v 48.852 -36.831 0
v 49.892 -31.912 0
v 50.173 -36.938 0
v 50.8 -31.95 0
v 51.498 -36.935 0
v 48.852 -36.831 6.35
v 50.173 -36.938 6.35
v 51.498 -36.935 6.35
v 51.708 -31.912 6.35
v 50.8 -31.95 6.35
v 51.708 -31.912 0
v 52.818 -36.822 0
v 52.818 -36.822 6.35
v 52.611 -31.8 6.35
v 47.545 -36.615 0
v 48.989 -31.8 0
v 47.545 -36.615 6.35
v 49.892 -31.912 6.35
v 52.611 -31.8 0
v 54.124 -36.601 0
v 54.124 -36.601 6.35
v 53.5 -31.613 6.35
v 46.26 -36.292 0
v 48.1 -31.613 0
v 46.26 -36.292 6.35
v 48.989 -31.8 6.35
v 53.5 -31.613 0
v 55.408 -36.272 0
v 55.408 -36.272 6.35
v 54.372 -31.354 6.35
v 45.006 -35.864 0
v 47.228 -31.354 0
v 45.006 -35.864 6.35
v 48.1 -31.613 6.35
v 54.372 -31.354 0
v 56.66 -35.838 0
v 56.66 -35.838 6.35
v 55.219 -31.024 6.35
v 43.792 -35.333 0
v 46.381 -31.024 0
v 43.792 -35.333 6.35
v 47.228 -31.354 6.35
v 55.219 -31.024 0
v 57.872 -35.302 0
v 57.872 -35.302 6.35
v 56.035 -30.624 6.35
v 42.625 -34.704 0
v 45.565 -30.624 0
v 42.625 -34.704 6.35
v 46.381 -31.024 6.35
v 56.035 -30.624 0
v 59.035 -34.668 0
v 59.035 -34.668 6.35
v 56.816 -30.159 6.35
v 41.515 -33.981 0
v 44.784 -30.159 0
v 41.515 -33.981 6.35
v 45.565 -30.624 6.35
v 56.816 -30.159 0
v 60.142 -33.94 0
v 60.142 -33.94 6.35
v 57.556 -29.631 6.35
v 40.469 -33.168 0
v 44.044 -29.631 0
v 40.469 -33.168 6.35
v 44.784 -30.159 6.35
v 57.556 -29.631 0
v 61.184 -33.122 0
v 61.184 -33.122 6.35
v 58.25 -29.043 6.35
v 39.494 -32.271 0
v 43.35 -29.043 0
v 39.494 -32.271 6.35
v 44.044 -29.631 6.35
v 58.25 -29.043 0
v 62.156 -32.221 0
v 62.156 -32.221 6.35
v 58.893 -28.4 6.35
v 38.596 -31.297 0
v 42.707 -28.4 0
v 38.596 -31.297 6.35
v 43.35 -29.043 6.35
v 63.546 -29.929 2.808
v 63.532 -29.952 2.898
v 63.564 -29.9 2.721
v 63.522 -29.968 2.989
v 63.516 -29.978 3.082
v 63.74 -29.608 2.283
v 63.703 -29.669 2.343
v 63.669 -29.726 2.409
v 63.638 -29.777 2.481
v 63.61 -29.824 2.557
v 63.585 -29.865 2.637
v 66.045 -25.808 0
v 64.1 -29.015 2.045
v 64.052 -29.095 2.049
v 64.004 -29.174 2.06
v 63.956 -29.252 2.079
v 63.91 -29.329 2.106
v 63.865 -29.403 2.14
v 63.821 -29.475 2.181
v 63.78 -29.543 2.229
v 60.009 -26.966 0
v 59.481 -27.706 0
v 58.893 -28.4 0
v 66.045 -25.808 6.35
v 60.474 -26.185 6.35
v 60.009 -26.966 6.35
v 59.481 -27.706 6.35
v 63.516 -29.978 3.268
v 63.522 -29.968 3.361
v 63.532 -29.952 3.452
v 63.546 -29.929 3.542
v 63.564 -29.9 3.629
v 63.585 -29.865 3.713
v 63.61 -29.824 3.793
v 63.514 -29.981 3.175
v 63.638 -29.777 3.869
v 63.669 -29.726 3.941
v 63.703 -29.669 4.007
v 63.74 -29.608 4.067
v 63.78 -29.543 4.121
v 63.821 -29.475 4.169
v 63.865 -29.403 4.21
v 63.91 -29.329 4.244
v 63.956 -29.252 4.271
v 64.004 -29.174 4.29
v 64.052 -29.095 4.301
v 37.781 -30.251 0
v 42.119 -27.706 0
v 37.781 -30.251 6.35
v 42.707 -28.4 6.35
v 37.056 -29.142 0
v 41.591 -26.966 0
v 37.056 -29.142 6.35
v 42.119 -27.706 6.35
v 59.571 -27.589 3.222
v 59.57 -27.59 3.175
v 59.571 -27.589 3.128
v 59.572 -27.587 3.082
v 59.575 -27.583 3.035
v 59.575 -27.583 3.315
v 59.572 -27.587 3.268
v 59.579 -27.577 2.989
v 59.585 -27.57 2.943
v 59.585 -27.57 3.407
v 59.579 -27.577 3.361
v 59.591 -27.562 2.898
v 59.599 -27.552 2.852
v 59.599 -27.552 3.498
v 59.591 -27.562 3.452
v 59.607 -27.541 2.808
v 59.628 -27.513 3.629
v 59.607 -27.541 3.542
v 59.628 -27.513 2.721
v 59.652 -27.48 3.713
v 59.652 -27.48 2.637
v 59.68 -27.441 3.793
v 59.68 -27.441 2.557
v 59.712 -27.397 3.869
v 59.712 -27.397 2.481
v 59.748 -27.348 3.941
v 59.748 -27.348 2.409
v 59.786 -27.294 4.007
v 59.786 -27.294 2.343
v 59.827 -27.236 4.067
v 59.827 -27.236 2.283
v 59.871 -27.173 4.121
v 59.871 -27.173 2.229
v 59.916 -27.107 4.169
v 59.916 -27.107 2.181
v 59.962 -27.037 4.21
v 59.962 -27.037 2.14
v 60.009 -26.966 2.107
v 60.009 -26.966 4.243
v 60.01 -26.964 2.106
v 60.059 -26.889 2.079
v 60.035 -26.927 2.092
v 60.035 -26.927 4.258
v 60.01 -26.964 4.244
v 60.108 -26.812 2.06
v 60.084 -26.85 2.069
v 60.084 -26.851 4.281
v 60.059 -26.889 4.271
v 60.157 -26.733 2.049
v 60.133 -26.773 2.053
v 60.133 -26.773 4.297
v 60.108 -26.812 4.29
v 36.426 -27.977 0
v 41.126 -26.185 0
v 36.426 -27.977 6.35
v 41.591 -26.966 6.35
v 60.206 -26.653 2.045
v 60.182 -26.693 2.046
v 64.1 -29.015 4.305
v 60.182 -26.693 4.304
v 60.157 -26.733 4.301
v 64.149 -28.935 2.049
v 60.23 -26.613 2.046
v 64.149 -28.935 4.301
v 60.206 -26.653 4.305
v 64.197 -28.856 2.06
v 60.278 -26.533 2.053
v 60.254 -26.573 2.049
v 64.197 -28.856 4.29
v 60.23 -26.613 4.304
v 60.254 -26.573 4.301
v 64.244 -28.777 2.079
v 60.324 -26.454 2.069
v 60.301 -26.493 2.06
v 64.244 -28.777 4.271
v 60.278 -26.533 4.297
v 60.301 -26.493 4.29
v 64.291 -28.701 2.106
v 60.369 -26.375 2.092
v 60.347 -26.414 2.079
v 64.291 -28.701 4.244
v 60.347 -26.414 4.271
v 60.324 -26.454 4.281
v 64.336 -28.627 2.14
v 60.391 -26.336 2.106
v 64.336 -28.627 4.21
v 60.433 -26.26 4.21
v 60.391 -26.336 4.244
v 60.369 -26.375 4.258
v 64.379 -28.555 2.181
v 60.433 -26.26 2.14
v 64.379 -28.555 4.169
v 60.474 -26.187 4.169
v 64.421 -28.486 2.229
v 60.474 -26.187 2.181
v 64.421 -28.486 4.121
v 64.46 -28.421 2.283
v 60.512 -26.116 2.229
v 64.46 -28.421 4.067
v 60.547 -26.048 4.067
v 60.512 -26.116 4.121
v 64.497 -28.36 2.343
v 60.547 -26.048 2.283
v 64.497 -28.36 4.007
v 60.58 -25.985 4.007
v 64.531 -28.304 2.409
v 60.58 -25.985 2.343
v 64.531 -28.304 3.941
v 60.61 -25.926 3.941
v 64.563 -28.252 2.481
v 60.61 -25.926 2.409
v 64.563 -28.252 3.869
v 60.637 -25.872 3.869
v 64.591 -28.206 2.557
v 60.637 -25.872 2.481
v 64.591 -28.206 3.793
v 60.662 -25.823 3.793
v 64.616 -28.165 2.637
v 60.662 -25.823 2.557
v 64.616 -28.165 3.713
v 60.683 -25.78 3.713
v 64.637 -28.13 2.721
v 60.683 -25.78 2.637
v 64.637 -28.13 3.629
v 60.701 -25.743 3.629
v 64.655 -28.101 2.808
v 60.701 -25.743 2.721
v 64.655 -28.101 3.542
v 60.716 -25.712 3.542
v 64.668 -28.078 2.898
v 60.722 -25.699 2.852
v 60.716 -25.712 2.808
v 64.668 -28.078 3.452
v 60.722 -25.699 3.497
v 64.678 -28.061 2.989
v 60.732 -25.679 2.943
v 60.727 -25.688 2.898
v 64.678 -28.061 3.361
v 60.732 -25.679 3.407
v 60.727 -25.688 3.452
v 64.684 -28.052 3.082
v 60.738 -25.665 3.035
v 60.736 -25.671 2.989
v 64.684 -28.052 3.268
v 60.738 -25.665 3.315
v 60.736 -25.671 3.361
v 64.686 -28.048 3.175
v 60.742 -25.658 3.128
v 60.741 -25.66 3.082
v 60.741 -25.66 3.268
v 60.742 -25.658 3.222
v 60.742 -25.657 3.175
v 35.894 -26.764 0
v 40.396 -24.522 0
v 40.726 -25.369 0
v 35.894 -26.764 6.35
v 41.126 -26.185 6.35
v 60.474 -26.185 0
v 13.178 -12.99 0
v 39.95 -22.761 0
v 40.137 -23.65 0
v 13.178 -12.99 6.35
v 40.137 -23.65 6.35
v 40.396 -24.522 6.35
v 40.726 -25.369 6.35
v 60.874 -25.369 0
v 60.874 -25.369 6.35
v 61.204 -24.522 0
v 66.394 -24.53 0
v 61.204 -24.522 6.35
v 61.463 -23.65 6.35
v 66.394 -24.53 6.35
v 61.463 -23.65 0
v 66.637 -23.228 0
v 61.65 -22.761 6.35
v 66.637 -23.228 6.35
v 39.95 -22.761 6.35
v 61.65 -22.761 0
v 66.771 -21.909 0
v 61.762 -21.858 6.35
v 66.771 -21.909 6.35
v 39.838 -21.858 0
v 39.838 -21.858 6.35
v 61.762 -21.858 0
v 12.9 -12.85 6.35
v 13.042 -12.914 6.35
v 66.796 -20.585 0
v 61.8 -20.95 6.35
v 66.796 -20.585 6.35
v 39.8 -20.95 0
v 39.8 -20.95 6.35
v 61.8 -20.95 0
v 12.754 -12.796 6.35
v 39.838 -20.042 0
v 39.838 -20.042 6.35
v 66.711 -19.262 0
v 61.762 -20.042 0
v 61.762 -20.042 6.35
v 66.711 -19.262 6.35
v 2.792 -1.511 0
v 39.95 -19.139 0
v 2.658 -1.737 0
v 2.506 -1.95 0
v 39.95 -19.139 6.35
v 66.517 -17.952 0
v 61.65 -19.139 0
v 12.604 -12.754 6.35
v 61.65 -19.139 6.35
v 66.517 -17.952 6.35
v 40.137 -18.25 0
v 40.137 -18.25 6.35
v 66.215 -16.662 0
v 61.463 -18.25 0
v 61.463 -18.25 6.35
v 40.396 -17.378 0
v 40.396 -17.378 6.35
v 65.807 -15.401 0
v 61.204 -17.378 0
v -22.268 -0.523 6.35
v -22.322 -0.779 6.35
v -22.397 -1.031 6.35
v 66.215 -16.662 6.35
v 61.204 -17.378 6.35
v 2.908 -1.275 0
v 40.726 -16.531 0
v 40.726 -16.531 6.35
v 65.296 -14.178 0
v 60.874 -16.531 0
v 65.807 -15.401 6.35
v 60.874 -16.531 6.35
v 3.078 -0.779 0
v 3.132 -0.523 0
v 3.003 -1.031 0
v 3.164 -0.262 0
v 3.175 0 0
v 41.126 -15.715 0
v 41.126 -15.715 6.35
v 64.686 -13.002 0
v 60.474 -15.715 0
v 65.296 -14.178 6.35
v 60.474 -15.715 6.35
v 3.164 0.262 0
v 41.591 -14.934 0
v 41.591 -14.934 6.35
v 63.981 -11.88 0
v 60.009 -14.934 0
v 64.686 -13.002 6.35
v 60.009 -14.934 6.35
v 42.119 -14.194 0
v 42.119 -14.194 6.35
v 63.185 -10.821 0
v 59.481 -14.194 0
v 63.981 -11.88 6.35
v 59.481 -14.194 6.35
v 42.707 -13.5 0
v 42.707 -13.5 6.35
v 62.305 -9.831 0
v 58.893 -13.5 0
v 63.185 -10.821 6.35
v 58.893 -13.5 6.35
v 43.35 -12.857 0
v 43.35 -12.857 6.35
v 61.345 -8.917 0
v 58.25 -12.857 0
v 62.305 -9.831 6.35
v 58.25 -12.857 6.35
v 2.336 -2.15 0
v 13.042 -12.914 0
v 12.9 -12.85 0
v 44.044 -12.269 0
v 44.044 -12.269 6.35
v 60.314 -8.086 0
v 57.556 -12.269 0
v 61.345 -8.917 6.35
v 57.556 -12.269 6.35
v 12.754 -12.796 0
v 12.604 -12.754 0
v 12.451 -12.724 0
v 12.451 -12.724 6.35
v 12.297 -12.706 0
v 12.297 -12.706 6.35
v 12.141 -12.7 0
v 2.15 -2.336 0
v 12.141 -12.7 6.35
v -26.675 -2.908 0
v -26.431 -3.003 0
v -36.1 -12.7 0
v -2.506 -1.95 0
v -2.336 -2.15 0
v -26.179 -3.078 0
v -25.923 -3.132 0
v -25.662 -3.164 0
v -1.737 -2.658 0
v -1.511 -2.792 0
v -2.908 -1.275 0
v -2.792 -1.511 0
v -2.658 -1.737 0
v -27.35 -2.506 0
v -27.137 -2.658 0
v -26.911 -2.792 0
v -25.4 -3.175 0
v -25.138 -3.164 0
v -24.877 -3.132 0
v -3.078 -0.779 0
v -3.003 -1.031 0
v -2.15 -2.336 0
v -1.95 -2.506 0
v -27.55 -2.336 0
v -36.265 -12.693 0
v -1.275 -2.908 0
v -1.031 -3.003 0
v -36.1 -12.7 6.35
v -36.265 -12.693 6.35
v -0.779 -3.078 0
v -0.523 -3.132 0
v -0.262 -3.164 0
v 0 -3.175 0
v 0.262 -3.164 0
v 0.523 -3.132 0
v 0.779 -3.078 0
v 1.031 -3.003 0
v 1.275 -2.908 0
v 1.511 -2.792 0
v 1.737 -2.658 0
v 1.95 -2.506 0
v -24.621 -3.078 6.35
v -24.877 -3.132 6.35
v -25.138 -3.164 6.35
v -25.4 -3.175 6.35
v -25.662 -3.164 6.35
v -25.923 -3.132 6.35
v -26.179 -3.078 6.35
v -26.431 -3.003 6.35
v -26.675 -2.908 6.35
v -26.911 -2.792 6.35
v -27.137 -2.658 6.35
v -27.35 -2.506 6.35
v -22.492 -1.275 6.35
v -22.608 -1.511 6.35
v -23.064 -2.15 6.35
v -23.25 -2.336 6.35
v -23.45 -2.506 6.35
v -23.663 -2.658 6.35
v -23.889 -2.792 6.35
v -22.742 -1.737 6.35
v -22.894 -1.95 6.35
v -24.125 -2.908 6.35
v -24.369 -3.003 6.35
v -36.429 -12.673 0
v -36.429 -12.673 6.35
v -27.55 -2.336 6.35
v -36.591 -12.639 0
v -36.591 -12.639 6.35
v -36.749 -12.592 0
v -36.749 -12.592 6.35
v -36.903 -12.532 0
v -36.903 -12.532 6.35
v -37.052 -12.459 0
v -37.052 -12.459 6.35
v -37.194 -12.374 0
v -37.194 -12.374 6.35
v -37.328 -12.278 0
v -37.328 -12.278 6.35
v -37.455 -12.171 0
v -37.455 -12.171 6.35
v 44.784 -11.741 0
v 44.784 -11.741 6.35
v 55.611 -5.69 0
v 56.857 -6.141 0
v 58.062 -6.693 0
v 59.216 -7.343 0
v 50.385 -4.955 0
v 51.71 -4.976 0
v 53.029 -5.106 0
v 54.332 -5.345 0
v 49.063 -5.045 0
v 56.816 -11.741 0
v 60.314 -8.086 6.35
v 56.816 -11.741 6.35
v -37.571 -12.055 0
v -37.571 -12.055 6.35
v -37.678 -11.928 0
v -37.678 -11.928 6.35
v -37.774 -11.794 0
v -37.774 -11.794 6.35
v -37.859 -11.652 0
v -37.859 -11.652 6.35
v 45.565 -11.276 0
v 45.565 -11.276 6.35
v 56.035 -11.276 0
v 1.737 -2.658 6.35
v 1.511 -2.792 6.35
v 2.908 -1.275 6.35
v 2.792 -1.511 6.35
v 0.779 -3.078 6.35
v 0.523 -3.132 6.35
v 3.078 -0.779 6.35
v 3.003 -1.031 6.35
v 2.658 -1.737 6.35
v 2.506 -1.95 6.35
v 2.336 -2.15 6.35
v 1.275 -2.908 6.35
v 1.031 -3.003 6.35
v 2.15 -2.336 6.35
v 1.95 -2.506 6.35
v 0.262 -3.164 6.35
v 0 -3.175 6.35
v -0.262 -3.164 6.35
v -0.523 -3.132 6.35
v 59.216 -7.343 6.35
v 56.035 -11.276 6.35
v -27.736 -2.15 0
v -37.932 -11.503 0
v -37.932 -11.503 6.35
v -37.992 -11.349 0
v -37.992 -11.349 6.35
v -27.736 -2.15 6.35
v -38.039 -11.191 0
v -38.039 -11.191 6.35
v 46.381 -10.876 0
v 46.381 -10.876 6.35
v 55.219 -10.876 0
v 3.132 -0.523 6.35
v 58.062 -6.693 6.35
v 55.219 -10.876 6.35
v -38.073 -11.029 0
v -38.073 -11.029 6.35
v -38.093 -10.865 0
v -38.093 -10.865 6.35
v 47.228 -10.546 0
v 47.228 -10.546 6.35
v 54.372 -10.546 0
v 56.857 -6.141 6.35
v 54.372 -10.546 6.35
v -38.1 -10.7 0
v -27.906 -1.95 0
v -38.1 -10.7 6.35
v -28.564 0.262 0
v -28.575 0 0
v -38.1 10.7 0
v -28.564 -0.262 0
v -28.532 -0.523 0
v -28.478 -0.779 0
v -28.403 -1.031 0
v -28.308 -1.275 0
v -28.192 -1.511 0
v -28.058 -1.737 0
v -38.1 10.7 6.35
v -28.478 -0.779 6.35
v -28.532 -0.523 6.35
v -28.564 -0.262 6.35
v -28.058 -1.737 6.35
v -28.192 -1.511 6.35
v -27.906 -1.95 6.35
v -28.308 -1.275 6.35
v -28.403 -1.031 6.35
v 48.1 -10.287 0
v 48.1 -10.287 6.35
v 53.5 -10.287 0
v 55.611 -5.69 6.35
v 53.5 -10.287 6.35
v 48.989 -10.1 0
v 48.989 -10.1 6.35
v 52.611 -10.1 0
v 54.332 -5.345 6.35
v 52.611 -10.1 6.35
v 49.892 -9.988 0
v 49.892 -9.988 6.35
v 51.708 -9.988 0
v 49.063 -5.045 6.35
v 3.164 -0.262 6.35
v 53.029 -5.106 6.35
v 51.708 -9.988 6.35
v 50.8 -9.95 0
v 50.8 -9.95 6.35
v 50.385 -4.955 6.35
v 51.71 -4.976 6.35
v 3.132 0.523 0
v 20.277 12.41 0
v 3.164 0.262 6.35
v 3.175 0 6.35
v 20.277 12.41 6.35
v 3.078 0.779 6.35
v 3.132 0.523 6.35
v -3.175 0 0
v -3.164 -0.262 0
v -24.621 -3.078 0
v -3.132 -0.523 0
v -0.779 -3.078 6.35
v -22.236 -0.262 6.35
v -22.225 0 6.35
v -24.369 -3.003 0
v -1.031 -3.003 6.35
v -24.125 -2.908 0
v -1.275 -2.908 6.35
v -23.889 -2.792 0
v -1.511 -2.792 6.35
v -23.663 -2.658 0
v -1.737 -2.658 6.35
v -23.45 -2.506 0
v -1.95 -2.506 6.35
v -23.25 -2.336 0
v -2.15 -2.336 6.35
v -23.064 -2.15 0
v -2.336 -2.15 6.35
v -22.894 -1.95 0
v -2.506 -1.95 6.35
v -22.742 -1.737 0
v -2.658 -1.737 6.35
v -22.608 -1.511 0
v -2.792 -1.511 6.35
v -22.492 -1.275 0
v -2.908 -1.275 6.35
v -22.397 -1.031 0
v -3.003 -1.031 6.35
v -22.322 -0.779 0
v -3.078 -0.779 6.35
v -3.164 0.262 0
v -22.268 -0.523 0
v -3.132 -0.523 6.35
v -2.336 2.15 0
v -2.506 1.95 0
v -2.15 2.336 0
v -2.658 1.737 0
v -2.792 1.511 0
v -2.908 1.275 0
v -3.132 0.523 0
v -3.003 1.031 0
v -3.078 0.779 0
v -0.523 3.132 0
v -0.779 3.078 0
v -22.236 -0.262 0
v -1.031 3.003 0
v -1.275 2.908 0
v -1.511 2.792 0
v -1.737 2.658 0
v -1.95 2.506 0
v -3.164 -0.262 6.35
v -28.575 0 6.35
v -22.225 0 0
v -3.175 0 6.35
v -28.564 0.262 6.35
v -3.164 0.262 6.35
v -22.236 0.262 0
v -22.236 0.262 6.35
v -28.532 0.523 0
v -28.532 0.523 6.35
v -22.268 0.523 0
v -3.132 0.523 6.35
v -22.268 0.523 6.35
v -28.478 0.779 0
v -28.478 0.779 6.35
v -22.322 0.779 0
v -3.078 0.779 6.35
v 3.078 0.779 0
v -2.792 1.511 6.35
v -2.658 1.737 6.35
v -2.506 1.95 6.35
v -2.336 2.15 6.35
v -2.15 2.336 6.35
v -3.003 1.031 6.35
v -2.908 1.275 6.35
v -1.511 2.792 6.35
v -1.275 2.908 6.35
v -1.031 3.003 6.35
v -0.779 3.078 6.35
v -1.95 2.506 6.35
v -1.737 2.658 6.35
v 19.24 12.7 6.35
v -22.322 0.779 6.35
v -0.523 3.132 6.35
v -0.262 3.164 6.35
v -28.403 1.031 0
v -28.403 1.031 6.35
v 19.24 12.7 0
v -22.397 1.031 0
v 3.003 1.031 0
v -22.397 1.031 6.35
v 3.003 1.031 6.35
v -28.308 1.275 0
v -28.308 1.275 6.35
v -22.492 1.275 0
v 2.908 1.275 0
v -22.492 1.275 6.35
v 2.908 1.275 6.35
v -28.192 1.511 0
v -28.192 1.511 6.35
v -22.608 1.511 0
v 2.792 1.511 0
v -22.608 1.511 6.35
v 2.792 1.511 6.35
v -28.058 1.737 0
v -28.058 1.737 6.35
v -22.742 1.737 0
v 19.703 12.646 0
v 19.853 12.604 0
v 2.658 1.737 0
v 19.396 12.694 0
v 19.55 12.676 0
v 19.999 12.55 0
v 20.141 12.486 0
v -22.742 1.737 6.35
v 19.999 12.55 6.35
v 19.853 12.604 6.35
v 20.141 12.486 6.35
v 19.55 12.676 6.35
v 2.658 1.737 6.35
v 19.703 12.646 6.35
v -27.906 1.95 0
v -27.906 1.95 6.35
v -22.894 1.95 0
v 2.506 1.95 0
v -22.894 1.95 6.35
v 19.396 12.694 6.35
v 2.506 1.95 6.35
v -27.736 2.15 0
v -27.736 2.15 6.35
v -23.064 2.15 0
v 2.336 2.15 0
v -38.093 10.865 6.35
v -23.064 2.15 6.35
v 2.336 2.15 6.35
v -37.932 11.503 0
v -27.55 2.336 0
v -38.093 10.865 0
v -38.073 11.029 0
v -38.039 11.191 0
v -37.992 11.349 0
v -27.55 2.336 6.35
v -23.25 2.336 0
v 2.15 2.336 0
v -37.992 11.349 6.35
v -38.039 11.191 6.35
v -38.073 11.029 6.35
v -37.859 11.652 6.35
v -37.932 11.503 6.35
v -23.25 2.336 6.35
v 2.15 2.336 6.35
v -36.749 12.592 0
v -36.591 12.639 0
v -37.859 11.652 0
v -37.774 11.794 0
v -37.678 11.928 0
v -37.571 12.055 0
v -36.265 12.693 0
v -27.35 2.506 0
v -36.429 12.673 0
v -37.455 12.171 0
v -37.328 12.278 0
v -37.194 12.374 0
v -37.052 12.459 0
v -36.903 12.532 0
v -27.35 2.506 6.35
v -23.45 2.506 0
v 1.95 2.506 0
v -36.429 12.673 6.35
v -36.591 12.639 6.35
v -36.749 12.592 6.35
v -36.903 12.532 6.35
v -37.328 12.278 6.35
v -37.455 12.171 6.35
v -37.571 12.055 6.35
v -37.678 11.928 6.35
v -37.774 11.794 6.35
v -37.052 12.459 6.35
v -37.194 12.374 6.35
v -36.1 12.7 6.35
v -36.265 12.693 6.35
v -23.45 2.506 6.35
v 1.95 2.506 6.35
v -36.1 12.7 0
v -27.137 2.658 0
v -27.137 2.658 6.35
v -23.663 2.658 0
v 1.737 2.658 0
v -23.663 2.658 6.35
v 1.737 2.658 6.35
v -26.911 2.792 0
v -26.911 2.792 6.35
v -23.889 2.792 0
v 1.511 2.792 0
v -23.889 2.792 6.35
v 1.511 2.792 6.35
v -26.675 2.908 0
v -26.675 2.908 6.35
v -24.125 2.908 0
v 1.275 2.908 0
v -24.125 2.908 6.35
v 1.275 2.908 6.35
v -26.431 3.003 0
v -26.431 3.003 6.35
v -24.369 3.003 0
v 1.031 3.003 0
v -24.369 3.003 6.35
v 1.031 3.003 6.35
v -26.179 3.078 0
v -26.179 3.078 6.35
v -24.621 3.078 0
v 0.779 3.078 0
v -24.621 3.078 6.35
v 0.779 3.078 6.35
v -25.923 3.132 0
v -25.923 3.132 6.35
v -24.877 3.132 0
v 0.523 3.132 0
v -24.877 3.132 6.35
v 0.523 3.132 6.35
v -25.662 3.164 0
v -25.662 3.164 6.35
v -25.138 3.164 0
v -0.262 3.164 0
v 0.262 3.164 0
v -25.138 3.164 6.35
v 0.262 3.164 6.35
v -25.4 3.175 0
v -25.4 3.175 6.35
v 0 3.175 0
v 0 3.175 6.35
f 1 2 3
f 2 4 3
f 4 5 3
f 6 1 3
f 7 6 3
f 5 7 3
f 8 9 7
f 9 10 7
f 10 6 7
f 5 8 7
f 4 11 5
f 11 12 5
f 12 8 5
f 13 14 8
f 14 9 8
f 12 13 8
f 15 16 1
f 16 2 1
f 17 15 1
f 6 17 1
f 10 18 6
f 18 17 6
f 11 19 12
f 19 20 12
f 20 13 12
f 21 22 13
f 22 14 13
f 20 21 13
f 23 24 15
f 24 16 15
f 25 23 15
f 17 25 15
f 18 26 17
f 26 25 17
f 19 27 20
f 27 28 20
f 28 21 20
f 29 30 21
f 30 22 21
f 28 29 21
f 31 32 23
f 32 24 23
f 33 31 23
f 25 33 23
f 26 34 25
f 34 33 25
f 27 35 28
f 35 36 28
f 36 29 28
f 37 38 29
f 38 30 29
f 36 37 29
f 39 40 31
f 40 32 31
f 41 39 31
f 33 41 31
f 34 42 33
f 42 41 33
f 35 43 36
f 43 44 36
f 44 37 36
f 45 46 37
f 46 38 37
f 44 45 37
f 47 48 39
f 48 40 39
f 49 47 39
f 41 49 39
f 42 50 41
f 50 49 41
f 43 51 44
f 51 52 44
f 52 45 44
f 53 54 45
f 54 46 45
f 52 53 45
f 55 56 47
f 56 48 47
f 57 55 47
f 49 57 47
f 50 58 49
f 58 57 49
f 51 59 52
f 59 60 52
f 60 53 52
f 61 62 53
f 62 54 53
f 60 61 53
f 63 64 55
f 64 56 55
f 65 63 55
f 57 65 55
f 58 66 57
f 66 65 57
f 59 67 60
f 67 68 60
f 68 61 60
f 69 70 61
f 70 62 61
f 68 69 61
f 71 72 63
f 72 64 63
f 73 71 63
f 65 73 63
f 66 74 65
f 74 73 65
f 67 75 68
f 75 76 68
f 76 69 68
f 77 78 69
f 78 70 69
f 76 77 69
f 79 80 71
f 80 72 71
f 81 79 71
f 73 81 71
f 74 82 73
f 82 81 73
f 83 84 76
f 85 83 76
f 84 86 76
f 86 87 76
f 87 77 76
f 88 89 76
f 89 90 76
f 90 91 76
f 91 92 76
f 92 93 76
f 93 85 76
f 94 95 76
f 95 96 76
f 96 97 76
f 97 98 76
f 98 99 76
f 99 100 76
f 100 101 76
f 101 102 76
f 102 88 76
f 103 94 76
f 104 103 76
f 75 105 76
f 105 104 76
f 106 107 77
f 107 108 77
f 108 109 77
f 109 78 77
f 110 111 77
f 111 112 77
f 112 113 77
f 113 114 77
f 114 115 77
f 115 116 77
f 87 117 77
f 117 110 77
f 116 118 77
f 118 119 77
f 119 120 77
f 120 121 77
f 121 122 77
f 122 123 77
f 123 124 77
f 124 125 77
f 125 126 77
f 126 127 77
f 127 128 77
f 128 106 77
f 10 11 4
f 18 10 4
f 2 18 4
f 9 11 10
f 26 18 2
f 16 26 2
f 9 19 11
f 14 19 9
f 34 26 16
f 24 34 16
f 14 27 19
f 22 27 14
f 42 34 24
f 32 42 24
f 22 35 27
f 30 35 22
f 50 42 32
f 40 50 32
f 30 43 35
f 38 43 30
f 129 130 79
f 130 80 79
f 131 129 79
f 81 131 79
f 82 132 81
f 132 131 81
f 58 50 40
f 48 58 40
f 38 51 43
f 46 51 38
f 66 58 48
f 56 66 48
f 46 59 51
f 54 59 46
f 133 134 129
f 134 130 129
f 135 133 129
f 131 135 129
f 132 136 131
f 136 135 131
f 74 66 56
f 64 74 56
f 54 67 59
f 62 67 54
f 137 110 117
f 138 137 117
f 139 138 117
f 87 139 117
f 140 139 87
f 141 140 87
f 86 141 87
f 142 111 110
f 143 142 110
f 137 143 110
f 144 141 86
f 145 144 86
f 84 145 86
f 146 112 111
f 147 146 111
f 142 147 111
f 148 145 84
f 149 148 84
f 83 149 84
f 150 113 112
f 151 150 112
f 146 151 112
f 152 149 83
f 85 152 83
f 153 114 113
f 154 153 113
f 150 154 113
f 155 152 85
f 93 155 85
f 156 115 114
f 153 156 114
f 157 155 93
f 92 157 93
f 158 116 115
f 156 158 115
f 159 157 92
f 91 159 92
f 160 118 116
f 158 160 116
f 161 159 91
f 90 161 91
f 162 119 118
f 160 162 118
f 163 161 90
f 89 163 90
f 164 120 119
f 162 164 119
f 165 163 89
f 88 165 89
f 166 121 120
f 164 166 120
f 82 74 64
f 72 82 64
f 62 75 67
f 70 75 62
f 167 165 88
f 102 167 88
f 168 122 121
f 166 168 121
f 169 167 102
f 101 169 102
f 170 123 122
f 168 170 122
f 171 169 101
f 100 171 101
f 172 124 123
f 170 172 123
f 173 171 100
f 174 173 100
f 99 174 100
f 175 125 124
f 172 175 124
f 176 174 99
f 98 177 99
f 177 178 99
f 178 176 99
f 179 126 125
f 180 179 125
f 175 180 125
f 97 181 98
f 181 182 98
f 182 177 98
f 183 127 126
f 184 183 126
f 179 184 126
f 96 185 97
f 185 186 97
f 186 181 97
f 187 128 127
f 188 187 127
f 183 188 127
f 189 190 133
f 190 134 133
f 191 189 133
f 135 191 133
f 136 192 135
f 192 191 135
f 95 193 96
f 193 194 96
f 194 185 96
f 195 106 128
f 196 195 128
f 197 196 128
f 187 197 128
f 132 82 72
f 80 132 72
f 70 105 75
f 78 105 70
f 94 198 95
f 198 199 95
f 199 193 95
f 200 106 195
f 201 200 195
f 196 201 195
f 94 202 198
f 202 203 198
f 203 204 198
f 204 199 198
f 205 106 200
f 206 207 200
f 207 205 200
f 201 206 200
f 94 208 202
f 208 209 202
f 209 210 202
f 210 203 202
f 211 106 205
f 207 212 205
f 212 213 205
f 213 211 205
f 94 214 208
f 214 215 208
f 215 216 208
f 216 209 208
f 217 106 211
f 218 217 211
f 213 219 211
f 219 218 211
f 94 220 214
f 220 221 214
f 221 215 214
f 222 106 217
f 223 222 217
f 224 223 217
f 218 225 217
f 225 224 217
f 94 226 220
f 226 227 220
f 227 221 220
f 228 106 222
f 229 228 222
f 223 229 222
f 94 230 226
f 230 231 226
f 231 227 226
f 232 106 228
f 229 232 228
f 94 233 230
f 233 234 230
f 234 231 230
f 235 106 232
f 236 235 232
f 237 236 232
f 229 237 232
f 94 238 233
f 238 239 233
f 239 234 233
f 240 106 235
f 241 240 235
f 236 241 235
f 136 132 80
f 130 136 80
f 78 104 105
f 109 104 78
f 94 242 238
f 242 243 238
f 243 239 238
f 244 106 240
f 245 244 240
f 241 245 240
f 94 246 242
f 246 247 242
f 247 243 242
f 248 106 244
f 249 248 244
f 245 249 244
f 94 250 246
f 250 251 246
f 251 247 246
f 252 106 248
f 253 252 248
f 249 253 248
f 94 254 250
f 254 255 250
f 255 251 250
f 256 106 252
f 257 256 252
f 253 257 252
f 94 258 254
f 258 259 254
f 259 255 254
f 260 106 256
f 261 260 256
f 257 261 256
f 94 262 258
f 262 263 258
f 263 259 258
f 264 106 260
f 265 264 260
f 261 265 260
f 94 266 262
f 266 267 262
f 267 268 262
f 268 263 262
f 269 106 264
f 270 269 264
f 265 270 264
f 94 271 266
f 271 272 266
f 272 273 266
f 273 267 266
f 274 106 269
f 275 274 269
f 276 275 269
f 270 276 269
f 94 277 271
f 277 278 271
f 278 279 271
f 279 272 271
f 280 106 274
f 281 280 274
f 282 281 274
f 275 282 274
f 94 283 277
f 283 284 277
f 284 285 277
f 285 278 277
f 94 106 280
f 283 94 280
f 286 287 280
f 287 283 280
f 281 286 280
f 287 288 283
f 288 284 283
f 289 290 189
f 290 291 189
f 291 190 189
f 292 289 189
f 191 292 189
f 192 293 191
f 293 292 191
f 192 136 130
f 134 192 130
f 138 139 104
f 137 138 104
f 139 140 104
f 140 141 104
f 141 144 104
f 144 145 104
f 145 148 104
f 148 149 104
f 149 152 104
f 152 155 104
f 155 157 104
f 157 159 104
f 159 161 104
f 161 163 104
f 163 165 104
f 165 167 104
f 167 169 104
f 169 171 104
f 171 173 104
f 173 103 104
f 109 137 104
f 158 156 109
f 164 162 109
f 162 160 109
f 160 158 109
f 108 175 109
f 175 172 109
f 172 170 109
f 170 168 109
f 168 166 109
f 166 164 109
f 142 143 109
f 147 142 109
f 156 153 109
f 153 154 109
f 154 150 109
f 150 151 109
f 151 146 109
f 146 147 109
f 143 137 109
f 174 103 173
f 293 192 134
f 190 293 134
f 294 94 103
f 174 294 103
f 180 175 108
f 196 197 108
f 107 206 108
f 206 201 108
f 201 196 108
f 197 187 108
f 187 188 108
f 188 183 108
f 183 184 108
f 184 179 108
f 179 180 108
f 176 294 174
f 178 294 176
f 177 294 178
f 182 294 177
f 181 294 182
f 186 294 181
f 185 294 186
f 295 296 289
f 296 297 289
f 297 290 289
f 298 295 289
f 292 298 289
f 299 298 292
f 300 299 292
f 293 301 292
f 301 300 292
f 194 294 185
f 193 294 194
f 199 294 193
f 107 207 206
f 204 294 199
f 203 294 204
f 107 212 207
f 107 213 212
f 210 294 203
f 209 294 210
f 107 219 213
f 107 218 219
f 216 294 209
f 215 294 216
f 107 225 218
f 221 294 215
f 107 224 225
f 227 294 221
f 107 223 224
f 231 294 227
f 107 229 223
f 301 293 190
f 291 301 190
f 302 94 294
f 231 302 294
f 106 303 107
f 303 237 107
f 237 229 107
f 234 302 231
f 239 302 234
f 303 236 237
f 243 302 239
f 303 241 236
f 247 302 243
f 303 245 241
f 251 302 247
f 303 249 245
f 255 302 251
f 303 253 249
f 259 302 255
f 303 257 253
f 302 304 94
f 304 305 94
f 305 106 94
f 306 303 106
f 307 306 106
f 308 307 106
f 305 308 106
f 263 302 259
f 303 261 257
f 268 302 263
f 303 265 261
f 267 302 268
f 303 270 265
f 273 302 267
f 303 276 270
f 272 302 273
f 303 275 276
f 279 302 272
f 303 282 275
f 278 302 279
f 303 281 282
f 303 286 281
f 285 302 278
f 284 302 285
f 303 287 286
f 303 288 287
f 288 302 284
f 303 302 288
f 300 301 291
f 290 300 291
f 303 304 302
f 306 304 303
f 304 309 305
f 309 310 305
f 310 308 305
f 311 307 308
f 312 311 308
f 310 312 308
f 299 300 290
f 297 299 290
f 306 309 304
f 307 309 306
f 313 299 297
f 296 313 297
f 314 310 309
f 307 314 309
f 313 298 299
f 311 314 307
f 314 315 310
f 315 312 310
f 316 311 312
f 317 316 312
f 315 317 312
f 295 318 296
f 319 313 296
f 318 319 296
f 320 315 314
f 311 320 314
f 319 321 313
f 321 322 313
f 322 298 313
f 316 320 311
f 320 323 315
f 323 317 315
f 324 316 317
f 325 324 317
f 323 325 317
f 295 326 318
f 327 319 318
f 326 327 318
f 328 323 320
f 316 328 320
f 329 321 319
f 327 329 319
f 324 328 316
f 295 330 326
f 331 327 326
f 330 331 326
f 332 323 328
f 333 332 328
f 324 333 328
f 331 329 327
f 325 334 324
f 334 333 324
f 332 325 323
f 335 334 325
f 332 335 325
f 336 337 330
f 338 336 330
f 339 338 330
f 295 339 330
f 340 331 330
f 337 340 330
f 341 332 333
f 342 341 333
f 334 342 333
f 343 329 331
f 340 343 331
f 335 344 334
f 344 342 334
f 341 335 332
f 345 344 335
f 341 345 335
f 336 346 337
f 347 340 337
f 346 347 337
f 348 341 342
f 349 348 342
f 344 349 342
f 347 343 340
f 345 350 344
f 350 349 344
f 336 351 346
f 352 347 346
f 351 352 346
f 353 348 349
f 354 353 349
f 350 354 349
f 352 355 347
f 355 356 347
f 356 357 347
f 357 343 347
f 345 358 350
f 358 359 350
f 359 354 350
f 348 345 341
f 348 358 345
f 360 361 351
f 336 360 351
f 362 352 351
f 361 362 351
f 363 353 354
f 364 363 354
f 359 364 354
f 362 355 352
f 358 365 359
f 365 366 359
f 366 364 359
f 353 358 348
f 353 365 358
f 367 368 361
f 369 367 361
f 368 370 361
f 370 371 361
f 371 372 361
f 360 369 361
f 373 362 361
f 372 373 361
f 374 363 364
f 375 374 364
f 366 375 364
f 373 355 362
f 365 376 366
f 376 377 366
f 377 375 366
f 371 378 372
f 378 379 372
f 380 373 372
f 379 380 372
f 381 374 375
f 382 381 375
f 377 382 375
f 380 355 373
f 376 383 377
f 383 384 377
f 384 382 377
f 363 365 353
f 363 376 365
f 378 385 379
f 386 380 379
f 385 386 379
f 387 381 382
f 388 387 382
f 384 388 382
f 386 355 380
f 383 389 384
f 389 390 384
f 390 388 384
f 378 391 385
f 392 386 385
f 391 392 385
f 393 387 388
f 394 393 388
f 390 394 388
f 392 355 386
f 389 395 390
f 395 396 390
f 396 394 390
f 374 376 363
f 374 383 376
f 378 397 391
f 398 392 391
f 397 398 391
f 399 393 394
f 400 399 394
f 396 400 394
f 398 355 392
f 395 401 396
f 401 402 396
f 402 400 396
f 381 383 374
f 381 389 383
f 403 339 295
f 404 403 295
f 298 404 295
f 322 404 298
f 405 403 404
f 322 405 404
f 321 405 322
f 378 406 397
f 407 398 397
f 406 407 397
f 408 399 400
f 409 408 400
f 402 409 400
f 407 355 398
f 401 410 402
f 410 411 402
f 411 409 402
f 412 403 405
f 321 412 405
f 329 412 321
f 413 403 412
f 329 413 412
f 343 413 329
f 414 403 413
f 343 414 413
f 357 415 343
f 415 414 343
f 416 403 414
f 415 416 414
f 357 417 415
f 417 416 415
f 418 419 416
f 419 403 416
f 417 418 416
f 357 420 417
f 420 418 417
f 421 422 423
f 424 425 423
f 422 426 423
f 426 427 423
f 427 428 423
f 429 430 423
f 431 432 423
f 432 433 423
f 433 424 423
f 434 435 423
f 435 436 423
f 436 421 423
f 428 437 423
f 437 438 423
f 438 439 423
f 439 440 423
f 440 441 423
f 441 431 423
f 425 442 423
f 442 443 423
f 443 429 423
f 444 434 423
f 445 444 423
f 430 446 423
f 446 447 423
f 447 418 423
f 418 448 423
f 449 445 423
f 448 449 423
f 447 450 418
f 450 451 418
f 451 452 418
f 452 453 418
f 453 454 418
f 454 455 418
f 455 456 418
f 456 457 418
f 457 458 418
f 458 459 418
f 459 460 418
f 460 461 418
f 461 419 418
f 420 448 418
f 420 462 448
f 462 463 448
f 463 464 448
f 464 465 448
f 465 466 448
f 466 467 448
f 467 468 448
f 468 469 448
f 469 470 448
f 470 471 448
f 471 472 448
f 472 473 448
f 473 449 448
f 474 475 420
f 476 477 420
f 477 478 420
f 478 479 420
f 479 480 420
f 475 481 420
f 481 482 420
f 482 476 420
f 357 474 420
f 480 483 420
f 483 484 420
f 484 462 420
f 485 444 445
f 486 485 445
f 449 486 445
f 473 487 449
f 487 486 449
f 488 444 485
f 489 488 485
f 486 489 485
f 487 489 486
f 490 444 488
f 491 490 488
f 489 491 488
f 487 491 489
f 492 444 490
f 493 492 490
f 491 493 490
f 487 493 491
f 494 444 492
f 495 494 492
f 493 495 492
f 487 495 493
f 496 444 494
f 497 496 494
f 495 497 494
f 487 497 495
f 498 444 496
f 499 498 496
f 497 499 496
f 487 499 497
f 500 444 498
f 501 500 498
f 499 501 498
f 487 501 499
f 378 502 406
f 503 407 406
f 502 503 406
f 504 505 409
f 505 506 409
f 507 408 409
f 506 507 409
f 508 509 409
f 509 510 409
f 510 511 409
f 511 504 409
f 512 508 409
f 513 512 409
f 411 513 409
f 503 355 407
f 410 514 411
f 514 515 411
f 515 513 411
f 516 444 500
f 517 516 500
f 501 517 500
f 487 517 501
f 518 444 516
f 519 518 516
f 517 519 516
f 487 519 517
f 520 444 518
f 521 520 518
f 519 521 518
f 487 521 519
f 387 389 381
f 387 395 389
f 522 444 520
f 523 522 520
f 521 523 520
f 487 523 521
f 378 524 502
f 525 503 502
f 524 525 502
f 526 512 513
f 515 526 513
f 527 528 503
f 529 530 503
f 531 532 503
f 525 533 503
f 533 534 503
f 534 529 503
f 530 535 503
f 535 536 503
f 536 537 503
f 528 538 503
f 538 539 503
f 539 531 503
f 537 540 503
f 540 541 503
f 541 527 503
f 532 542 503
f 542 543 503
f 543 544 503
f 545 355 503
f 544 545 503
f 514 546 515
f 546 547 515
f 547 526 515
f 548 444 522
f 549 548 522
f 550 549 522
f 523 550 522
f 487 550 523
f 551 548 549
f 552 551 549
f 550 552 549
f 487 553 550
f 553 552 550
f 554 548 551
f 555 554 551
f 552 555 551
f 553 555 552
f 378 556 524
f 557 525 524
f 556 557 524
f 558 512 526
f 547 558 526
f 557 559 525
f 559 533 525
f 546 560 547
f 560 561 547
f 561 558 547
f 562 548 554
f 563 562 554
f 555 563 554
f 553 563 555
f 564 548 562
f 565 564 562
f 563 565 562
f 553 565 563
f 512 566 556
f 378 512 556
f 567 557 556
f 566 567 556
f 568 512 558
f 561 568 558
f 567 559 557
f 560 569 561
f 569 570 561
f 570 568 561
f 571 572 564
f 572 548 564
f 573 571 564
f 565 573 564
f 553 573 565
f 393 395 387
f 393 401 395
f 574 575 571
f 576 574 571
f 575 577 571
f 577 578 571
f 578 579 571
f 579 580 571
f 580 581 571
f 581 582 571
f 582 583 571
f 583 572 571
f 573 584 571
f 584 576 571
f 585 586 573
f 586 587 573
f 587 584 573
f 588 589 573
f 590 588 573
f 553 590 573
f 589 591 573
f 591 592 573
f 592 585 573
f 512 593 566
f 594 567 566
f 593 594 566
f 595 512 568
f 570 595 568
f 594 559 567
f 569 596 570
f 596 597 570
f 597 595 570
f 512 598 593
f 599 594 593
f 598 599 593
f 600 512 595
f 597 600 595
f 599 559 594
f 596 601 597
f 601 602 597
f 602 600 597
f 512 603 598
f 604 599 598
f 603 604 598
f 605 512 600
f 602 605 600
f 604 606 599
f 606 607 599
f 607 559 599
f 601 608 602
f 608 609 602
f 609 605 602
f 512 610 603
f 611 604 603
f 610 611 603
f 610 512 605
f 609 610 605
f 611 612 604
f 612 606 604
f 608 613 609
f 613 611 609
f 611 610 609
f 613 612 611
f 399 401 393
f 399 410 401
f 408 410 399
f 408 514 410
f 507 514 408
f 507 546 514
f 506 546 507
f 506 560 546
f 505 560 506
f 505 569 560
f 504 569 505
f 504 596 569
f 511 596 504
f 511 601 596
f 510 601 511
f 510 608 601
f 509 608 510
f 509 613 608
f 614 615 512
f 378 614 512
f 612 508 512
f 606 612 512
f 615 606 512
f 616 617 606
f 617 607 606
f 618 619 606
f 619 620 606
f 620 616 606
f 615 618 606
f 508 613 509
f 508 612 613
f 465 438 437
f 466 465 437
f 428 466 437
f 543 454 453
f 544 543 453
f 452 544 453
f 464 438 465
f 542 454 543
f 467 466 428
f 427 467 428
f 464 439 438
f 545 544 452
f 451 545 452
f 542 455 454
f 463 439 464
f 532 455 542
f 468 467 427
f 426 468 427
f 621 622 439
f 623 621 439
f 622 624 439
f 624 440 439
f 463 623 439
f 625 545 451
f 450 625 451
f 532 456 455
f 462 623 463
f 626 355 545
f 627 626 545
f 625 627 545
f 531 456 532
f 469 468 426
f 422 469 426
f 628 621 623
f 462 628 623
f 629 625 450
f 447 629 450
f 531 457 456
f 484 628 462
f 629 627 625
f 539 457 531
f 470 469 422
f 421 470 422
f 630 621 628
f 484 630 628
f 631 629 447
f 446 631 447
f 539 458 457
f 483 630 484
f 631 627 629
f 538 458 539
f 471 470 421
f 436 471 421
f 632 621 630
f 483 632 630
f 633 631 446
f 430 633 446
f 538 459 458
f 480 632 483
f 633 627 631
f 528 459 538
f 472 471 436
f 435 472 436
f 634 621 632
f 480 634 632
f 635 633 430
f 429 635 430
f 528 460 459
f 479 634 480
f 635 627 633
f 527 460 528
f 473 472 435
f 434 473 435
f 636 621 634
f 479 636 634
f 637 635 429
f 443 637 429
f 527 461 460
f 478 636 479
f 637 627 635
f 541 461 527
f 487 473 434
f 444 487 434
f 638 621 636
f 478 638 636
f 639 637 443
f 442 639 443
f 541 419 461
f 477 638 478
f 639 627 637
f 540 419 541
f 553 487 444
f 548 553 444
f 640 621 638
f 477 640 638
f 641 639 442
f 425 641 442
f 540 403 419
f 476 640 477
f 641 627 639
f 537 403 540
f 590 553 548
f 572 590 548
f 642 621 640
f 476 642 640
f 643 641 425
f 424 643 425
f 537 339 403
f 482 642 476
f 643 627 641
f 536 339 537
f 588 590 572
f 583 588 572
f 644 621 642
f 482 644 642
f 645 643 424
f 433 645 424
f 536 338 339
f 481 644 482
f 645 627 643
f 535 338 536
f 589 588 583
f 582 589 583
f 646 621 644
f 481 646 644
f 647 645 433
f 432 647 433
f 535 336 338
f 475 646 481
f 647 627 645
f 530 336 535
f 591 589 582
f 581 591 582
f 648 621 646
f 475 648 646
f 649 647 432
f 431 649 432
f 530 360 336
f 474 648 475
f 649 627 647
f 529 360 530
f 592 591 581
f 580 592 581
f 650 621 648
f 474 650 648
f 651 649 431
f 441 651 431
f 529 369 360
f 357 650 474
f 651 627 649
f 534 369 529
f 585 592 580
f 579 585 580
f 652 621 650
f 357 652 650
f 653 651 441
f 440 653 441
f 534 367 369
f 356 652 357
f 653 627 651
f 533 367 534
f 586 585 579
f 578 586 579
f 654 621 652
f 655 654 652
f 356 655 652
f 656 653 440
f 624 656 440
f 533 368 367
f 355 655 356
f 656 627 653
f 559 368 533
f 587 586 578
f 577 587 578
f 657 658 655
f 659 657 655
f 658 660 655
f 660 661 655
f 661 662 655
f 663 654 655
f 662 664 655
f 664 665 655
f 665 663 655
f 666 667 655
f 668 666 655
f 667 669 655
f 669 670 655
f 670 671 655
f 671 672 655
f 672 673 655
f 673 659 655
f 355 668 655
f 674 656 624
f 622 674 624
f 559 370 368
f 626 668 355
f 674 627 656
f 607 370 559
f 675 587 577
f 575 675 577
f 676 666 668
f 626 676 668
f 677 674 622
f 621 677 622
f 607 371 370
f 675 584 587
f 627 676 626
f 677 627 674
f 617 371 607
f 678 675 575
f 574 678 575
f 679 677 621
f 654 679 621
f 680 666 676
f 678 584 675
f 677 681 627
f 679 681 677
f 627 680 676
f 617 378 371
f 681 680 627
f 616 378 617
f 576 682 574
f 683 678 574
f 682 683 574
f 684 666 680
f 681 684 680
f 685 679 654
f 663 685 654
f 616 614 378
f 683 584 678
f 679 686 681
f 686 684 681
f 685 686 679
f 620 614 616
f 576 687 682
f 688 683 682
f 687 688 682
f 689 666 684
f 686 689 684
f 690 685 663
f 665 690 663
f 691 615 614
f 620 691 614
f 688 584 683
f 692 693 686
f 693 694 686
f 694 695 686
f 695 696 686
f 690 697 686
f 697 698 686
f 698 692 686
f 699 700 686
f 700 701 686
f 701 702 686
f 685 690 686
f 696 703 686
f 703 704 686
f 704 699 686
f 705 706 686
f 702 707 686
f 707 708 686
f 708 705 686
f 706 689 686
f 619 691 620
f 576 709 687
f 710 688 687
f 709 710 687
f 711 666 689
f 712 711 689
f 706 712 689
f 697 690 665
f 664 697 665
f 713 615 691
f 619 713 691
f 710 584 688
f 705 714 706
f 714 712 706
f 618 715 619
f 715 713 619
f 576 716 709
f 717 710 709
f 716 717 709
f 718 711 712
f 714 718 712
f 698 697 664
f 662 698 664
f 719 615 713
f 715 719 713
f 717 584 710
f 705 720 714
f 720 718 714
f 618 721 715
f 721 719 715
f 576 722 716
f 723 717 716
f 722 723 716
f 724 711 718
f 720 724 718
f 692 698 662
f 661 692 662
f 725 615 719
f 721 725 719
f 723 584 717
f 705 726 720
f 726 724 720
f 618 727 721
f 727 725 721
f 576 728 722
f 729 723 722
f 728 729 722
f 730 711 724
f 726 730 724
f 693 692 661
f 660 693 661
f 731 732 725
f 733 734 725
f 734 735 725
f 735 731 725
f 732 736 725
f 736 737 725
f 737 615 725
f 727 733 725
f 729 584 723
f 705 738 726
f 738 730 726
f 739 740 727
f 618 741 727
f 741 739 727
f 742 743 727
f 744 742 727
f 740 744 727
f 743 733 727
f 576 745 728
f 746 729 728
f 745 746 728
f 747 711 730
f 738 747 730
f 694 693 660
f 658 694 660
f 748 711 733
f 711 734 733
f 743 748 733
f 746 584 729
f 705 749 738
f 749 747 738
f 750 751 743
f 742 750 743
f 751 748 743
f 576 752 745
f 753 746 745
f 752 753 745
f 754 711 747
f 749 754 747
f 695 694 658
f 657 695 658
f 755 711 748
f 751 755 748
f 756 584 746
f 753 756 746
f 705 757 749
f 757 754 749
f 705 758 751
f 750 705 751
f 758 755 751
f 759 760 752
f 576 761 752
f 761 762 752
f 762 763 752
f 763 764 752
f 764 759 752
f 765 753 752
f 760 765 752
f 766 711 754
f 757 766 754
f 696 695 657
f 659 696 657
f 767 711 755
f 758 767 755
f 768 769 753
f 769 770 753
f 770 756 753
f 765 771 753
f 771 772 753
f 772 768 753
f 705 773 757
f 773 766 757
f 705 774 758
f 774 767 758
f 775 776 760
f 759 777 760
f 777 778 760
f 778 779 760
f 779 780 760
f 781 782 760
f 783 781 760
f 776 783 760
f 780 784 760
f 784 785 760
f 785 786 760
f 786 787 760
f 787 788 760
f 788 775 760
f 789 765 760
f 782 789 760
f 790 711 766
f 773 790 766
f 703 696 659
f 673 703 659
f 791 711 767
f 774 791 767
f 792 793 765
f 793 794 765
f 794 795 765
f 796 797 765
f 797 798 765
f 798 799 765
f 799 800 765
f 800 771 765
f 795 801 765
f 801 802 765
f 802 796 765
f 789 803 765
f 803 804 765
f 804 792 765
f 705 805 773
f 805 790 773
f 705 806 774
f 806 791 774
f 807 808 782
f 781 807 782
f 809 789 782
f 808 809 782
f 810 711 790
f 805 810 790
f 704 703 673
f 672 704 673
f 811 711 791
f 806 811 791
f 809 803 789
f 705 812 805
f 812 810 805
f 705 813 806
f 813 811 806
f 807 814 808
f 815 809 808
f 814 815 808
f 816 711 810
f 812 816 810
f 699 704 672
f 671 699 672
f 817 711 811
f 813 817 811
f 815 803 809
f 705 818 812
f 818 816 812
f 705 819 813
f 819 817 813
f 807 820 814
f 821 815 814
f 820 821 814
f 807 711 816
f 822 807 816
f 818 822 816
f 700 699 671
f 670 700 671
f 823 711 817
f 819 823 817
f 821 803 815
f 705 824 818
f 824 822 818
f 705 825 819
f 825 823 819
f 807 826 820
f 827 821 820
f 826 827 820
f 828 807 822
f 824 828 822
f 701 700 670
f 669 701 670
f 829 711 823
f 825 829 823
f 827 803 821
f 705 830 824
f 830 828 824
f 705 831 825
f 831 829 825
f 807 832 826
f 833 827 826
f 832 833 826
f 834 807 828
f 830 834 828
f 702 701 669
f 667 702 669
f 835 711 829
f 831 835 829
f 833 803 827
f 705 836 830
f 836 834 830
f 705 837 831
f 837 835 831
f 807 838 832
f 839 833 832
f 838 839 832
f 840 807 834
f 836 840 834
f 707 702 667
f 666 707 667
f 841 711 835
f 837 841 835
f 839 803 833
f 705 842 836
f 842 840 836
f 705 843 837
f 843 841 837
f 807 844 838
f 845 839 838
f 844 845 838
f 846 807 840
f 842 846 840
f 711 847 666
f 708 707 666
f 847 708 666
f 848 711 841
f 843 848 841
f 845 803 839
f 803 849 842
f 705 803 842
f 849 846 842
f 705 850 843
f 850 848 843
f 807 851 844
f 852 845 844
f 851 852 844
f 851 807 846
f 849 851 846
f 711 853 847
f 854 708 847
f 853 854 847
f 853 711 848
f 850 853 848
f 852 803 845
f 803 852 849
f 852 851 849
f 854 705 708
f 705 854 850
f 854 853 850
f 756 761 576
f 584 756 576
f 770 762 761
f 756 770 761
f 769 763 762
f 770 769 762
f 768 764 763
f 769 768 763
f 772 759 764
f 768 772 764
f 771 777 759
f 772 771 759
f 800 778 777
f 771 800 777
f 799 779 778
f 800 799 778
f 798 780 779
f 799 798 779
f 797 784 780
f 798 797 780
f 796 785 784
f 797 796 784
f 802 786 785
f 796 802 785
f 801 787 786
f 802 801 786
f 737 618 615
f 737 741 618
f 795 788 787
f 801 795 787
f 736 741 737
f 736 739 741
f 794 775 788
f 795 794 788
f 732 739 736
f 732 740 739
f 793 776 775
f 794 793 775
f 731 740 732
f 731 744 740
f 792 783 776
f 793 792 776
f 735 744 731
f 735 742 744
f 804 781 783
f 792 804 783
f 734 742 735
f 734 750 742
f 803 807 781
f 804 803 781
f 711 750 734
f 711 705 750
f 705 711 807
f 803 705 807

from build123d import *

# Parameters (mm, degrees)
SKETCH1_R               = 3.175
SKETCH1_R_2             = 11
BOSS_EXTRUDE1_DEPTH     = 6.35
FILLET3_R               = 2
CUT_EXTRUDE1_REACH      = 111.565
CUT_EXTRUDE1_END_RADIUS = 11
SKETCH2_R               = 1.1303


with BuildPart() as part:
    # Sketch1 → Boss-Extrude1 (new body)
    with BuildSketch(Plane.XY):
        with BuildLine():
            Line((-38.1, -12.7), (-38.1, 12.7))
            Line((-38.1, 12.7), (19.799208724, 12.7))
            Line((19.799208724, 12.7), (49.063216326, -5.044542368))
            ThreePointArc((49.063216326, -5.044542368), (63.185378941, -10.82071629), (66.044603929, -25.808194216))
            Line((66.044603929, -25.808194216), (62.155933896, -32.221324916))
            ThreePointArc((62.155933896, -32.221324916), (47.544550454, -36.615313538), (35.893587146, -26.763678338))
            Line((35.893587146, -26.763678338), (12.7, -12.7))
            Line((12.7, -12.7), (-38.1, -12.7))
        make_face()
        with Locations((-25.4, 0)):
            Circle(SKETCH1_R, mode=Mode.SUBTRACT)
        Circle(SKETCH1_R, mode=Mode.SUBTRACT)
        with Locations((50.8, -20.95)):
            Circle(SKETCH1_R_2, mode=Mode.SUBTRACT)
    extrude(amount=BOSS_EXTRUDE1_DEPTH)

    # Fillet3
    fillet3_edges = [part.edges().sort_by_distance(p)[0] for p in [
        (-38.1, -12.7, 3.175),
        (-38.1, 12.7, 3.175),
        (19.799208724, 12.7, 3.175),
        (12.7, -12.7, 3.175),
    ]]
    fillet(fillet3_edges, radius=FILLET3_R)

    # Cut-Extrude1: up to this cylinder (the profile starts outside it)
    cut_extrude1_end = Plane(origin=(50.8, -20.95, 3.175), z_dir=(0, 0, -1)) * Cylinder(CUT_EXTRUDE1_END_RADIUS, 246.13, mode=Mode.PRIVATE)
    # Sketch2 → Cut-Extrude1 (cut, up to the surface)
    with BuildSketch(Plane(origin=(59.73186838, -36.21905392, 0), x_dir=(0, 0, -1), z_dir=(0.855084093292463, -0.5184893377864259, 0)), mode=Mode.PRIVATE) as cut_extrude1_sk1:
        with Locations(Location((-3.175, 8.425246605, 0), (0, 0, 90))):
            Circle(SKETCH2_R)
    cut_extrude1_tool1 = extrude(cut_extrude1_sk1.sketch, amount=-CUT_EXTRUDE1_REACH, mode=Mode.PRIVATE) - cut_extrude1_end
    add(cut_extrude1_tool1.solids().sort_by_distance((64.100269, -29.01476, 3.175))[0], mode=Mode.SUBTRACT)


solid = part.part
